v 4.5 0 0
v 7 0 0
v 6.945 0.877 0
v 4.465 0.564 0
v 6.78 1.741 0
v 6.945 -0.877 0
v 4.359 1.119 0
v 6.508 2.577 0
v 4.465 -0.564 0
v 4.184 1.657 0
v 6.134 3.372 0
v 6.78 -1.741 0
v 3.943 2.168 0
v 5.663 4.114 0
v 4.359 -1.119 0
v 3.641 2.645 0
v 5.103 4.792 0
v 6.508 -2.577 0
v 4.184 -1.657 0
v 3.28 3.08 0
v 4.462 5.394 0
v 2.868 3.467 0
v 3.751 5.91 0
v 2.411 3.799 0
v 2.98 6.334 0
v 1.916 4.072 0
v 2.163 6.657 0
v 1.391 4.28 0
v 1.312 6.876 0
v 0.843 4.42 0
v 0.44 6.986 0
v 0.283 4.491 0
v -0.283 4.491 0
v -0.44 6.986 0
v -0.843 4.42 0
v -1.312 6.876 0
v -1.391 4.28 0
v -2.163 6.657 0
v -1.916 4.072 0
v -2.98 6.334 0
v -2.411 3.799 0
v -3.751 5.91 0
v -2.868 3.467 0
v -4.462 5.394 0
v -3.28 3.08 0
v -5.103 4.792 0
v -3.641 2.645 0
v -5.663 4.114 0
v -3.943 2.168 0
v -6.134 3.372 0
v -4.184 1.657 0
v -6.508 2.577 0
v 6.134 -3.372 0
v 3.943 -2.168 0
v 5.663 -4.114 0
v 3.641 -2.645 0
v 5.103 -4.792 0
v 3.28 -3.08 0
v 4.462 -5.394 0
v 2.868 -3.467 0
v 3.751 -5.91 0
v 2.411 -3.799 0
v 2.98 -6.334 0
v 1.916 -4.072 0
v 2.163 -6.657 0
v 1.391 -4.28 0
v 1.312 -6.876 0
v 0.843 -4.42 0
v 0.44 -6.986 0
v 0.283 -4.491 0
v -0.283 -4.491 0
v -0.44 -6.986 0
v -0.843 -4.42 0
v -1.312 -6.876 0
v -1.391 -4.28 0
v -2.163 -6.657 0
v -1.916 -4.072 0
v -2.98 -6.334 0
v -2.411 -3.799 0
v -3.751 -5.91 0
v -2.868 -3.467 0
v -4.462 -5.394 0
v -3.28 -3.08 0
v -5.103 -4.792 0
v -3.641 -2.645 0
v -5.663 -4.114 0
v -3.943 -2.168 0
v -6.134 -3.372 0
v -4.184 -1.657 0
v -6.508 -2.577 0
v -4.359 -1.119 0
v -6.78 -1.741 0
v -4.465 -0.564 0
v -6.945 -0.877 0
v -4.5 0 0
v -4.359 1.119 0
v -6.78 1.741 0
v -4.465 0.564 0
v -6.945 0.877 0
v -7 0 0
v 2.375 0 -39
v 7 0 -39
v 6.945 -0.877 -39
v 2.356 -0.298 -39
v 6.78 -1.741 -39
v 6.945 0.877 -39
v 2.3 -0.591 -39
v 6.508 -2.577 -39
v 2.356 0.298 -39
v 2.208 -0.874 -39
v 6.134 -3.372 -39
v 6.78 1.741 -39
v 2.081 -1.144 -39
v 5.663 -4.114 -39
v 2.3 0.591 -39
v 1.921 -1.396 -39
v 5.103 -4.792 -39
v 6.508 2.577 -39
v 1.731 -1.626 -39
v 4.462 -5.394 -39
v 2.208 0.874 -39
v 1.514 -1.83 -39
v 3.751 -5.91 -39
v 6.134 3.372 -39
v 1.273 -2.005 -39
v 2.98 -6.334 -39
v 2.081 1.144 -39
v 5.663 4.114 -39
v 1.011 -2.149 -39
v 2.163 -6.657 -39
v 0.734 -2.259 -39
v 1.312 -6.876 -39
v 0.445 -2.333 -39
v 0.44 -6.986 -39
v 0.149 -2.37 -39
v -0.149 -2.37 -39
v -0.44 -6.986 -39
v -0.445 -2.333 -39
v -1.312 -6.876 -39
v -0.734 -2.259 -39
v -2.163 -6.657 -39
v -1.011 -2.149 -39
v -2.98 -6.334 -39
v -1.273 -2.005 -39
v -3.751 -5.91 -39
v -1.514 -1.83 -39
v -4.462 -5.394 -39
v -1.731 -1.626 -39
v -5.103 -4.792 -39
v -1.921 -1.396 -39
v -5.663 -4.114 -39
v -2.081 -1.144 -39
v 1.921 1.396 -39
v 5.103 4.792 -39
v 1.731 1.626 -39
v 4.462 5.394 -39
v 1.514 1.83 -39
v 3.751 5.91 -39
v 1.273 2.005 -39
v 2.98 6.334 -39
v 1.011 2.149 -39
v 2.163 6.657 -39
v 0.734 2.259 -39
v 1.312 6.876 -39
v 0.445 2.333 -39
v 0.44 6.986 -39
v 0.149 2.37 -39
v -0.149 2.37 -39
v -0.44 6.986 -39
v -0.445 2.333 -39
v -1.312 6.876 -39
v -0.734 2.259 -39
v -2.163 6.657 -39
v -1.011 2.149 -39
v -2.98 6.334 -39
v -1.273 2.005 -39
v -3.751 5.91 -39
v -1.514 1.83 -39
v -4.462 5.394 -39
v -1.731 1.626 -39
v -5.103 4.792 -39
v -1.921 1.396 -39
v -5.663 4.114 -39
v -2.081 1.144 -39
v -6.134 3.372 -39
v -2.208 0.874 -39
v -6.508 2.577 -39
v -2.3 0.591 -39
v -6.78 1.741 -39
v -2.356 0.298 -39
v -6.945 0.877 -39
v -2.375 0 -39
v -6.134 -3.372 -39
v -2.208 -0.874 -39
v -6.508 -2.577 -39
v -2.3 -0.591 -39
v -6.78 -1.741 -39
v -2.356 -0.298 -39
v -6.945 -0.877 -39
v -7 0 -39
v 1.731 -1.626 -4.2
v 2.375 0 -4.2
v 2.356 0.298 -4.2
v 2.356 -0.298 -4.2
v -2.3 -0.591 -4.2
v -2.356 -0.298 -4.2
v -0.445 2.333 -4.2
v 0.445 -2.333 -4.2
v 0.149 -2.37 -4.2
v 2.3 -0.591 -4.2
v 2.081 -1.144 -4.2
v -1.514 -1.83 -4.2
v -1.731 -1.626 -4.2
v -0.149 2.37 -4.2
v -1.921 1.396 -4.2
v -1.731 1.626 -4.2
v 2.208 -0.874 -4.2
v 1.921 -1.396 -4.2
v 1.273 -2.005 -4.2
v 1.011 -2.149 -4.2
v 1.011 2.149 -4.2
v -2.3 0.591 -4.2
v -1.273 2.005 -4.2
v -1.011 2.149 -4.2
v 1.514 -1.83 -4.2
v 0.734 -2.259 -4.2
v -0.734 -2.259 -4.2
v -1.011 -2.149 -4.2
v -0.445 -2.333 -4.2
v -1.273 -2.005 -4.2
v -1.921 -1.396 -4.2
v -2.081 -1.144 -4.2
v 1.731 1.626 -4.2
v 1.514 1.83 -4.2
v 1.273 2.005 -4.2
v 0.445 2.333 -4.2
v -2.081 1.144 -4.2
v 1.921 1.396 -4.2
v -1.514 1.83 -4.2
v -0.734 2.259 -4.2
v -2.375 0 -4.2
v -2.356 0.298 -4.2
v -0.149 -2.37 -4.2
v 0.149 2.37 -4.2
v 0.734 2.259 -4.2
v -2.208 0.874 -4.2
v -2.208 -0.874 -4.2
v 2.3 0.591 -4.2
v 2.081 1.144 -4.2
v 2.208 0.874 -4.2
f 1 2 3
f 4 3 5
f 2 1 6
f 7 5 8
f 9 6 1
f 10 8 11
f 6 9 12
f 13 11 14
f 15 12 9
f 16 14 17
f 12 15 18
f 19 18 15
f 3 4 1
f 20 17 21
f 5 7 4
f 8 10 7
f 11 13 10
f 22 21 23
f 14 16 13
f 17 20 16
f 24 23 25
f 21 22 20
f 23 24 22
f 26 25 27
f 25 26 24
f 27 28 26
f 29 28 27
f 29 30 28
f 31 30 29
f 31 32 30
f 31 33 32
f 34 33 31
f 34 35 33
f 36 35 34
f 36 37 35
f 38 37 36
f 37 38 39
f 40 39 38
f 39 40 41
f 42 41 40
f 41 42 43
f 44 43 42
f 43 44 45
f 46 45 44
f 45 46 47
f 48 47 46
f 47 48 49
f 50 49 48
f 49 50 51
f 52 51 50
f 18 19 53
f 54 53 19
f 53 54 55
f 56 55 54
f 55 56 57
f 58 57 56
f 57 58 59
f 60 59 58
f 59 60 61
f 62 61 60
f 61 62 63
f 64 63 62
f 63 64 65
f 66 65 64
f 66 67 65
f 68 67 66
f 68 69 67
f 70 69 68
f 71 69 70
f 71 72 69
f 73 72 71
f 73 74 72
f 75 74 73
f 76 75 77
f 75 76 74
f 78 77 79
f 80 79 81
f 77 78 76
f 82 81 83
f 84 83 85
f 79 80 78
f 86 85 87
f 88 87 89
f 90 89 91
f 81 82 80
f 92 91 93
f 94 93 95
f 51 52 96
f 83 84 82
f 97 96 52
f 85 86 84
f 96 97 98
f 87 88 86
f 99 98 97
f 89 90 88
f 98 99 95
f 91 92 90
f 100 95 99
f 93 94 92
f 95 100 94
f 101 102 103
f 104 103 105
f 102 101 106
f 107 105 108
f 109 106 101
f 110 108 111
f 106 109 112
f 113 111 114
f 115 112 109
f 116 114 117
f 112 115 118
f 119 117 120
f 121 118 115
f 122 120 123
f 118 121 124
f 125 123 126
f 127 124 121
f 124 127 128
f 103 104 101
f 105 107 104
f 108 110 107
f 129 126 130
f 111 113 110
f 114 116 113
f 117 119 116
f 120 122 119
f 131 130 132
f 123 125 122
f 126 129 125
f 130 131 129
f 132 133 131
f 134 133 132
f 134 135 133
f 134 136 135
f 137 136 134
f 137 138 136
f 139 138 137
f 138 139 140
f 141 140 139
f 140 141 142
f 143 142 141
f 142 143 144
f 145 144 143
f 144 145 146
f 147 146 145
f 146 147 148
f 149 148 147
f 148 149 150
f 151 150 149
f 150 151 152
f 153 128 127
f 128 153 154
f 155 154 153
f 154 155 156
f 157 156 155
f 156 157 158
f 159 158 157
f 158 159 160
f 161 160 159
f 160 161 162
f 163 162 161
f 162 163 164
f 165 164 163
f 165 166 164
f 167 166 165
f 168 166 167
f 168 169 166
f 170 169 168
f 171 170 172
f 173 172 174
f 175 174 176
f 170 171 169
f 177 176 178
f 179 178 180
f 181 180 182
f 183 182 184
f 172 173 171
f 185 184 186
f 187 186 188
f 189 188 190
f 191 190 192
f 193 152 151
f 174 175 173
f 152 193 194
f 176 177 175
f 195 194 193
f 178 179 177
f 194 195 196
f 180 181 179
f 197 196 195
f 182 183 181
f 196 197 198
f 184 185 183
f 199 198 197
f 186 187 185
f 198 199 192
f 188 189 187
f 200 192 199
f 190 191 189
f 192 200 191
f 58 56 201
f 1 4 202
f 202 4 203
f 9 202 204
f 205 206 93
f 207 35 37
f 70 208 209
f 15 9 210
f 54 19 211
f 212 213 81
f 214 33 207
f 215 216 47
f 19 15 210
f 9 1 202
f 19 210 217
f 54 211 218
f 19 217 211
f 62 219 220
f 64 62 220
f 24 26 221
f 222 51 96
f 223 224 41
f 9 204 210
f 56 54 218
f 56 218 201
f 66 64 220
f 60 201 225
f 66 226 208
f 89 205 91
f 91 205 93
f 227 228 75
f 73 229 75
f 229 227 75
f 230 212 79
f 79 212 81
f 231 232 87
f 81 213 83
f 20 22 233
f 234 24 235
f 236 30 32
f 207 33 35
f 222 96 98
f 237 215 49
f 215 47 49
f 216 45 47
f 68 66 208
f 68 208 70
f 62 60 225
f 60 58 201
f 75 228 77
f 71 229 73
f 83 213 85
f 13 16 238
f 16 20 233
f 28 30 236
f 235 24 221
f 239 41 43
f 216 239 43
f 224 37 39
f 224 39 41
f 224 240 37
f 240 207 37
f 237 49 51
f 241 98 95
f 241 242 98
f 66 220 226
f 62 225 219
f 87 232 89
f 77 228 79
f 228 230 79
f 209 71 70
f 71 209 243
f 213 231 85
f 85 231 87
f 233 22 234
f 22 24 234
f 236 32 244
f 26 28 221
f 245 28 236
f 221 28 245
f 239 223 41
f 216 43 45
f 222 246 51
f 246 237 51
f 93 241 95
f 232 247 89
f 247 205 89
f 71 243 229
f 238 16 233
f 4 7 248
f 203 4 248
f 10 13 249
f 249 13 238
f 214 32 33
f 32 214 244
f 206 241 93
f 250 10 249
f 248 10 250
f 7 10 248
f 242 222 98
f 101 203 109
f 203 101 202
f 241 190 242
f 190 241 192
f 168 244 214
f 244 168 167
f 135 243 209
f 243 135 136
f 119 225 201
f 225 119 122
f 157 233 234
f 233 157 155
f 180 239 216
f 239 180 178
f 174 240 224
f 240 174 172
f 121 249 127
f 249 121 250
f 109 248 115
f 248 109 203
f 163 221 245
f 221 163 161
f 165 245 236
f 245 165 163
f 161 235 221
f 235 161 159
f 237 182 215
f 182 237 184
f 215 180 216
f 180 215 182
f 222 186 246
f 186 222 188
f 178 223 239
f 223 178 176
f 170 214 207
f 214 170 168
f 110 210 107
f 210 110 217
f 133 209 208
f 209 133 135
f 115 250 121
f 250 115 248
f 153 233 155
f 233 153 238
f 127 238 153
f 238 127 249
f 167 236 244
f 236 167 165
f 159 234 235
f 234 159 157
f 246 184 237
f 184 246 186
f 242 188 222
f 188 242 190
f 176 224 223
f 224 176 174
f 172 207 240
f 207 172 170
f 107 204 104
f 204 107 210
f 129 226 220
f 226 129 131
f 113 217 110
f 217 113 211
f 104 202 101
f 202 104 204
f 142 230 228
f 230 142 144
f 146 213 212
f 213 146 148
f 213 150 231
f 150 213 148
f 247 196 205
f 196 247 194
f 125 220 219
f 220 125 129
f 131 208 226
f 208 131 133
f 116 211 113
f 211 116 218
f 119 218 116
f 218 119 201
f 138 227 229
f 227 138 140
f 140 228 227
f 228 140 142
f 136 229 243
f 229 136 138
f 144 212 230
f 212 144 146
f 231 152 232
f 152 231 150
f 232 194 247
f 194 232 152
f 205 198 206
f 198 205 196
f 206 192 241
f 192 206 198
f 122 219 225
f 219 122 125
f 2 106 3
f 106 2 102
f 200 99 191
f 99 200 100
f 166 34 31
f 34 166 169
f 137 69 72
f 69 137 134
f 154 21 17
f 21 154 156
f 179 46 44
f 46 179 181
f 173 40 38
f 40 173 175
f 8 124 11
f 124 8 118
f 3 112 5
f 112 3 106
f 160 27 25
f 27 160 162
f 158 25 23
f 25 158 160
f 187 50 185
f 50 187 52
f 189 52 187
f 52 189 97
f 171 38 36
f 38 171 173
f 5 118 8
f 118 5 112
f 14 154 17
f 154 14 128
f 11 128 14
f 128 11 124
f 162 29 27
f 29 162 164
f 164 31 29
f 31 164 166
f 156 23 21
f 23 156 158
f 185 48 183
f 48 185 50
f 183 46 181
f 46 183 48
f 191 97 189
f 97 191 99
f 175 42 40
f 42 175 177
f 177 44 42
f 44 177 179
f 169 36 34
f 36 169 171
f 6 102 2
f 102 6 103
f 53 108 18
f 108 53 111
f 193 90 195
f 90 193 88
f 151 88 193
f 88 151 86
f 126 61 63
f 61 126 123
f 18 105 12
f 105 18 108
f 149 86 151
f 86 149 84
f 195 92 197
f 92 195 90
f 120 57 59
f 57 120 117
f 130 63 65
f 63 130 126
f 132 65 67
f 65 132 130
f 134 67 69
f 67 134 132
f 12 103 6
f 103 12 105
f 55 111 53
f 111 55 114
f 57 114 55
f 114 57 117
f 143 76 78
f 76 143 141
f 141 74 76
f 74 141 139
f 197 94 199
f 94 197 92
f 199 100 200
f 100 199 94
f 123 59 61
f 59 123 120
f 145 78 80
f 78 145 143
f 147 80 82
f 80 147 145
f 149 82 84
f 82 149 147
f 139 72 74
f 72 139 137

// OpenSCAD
$fn = 50;


difference() {
	union() {
		translate(v = [0, 0, -39.0000000000]) {
			cylinder(h = 39, r = 7.0000000000);
		}
		cylinder(h = 0, r = 13.0000000000);
	}
	union() {
		translate(v = [0, 0, 0]) {
			rotate(a = [0, 0, 0]) {
				difference() {
					union() {
						#translate(v = [0, 0, -39.0000000000]) {
							cylinder(h = 39, r = 2.2500000000);
						}
						#translate(v = [0, 0, -4.2000000000]) {
							cylinder(h = 4.2000000000, r = 7.0000000000, r1 = 2.3750000000, r2 = 4.5000000000);
						}
						#translate(v = [0, 0, -39.0000000000]) {
							cylinder(h = 39, r = 2.3750000000);
						}
						#translate(v = [0, 0, -39.0000000000]) {
							cylinder(h = 39, r = 2.2500000000);
						}
					}
					union();
				}
			}
		}
	}
}
